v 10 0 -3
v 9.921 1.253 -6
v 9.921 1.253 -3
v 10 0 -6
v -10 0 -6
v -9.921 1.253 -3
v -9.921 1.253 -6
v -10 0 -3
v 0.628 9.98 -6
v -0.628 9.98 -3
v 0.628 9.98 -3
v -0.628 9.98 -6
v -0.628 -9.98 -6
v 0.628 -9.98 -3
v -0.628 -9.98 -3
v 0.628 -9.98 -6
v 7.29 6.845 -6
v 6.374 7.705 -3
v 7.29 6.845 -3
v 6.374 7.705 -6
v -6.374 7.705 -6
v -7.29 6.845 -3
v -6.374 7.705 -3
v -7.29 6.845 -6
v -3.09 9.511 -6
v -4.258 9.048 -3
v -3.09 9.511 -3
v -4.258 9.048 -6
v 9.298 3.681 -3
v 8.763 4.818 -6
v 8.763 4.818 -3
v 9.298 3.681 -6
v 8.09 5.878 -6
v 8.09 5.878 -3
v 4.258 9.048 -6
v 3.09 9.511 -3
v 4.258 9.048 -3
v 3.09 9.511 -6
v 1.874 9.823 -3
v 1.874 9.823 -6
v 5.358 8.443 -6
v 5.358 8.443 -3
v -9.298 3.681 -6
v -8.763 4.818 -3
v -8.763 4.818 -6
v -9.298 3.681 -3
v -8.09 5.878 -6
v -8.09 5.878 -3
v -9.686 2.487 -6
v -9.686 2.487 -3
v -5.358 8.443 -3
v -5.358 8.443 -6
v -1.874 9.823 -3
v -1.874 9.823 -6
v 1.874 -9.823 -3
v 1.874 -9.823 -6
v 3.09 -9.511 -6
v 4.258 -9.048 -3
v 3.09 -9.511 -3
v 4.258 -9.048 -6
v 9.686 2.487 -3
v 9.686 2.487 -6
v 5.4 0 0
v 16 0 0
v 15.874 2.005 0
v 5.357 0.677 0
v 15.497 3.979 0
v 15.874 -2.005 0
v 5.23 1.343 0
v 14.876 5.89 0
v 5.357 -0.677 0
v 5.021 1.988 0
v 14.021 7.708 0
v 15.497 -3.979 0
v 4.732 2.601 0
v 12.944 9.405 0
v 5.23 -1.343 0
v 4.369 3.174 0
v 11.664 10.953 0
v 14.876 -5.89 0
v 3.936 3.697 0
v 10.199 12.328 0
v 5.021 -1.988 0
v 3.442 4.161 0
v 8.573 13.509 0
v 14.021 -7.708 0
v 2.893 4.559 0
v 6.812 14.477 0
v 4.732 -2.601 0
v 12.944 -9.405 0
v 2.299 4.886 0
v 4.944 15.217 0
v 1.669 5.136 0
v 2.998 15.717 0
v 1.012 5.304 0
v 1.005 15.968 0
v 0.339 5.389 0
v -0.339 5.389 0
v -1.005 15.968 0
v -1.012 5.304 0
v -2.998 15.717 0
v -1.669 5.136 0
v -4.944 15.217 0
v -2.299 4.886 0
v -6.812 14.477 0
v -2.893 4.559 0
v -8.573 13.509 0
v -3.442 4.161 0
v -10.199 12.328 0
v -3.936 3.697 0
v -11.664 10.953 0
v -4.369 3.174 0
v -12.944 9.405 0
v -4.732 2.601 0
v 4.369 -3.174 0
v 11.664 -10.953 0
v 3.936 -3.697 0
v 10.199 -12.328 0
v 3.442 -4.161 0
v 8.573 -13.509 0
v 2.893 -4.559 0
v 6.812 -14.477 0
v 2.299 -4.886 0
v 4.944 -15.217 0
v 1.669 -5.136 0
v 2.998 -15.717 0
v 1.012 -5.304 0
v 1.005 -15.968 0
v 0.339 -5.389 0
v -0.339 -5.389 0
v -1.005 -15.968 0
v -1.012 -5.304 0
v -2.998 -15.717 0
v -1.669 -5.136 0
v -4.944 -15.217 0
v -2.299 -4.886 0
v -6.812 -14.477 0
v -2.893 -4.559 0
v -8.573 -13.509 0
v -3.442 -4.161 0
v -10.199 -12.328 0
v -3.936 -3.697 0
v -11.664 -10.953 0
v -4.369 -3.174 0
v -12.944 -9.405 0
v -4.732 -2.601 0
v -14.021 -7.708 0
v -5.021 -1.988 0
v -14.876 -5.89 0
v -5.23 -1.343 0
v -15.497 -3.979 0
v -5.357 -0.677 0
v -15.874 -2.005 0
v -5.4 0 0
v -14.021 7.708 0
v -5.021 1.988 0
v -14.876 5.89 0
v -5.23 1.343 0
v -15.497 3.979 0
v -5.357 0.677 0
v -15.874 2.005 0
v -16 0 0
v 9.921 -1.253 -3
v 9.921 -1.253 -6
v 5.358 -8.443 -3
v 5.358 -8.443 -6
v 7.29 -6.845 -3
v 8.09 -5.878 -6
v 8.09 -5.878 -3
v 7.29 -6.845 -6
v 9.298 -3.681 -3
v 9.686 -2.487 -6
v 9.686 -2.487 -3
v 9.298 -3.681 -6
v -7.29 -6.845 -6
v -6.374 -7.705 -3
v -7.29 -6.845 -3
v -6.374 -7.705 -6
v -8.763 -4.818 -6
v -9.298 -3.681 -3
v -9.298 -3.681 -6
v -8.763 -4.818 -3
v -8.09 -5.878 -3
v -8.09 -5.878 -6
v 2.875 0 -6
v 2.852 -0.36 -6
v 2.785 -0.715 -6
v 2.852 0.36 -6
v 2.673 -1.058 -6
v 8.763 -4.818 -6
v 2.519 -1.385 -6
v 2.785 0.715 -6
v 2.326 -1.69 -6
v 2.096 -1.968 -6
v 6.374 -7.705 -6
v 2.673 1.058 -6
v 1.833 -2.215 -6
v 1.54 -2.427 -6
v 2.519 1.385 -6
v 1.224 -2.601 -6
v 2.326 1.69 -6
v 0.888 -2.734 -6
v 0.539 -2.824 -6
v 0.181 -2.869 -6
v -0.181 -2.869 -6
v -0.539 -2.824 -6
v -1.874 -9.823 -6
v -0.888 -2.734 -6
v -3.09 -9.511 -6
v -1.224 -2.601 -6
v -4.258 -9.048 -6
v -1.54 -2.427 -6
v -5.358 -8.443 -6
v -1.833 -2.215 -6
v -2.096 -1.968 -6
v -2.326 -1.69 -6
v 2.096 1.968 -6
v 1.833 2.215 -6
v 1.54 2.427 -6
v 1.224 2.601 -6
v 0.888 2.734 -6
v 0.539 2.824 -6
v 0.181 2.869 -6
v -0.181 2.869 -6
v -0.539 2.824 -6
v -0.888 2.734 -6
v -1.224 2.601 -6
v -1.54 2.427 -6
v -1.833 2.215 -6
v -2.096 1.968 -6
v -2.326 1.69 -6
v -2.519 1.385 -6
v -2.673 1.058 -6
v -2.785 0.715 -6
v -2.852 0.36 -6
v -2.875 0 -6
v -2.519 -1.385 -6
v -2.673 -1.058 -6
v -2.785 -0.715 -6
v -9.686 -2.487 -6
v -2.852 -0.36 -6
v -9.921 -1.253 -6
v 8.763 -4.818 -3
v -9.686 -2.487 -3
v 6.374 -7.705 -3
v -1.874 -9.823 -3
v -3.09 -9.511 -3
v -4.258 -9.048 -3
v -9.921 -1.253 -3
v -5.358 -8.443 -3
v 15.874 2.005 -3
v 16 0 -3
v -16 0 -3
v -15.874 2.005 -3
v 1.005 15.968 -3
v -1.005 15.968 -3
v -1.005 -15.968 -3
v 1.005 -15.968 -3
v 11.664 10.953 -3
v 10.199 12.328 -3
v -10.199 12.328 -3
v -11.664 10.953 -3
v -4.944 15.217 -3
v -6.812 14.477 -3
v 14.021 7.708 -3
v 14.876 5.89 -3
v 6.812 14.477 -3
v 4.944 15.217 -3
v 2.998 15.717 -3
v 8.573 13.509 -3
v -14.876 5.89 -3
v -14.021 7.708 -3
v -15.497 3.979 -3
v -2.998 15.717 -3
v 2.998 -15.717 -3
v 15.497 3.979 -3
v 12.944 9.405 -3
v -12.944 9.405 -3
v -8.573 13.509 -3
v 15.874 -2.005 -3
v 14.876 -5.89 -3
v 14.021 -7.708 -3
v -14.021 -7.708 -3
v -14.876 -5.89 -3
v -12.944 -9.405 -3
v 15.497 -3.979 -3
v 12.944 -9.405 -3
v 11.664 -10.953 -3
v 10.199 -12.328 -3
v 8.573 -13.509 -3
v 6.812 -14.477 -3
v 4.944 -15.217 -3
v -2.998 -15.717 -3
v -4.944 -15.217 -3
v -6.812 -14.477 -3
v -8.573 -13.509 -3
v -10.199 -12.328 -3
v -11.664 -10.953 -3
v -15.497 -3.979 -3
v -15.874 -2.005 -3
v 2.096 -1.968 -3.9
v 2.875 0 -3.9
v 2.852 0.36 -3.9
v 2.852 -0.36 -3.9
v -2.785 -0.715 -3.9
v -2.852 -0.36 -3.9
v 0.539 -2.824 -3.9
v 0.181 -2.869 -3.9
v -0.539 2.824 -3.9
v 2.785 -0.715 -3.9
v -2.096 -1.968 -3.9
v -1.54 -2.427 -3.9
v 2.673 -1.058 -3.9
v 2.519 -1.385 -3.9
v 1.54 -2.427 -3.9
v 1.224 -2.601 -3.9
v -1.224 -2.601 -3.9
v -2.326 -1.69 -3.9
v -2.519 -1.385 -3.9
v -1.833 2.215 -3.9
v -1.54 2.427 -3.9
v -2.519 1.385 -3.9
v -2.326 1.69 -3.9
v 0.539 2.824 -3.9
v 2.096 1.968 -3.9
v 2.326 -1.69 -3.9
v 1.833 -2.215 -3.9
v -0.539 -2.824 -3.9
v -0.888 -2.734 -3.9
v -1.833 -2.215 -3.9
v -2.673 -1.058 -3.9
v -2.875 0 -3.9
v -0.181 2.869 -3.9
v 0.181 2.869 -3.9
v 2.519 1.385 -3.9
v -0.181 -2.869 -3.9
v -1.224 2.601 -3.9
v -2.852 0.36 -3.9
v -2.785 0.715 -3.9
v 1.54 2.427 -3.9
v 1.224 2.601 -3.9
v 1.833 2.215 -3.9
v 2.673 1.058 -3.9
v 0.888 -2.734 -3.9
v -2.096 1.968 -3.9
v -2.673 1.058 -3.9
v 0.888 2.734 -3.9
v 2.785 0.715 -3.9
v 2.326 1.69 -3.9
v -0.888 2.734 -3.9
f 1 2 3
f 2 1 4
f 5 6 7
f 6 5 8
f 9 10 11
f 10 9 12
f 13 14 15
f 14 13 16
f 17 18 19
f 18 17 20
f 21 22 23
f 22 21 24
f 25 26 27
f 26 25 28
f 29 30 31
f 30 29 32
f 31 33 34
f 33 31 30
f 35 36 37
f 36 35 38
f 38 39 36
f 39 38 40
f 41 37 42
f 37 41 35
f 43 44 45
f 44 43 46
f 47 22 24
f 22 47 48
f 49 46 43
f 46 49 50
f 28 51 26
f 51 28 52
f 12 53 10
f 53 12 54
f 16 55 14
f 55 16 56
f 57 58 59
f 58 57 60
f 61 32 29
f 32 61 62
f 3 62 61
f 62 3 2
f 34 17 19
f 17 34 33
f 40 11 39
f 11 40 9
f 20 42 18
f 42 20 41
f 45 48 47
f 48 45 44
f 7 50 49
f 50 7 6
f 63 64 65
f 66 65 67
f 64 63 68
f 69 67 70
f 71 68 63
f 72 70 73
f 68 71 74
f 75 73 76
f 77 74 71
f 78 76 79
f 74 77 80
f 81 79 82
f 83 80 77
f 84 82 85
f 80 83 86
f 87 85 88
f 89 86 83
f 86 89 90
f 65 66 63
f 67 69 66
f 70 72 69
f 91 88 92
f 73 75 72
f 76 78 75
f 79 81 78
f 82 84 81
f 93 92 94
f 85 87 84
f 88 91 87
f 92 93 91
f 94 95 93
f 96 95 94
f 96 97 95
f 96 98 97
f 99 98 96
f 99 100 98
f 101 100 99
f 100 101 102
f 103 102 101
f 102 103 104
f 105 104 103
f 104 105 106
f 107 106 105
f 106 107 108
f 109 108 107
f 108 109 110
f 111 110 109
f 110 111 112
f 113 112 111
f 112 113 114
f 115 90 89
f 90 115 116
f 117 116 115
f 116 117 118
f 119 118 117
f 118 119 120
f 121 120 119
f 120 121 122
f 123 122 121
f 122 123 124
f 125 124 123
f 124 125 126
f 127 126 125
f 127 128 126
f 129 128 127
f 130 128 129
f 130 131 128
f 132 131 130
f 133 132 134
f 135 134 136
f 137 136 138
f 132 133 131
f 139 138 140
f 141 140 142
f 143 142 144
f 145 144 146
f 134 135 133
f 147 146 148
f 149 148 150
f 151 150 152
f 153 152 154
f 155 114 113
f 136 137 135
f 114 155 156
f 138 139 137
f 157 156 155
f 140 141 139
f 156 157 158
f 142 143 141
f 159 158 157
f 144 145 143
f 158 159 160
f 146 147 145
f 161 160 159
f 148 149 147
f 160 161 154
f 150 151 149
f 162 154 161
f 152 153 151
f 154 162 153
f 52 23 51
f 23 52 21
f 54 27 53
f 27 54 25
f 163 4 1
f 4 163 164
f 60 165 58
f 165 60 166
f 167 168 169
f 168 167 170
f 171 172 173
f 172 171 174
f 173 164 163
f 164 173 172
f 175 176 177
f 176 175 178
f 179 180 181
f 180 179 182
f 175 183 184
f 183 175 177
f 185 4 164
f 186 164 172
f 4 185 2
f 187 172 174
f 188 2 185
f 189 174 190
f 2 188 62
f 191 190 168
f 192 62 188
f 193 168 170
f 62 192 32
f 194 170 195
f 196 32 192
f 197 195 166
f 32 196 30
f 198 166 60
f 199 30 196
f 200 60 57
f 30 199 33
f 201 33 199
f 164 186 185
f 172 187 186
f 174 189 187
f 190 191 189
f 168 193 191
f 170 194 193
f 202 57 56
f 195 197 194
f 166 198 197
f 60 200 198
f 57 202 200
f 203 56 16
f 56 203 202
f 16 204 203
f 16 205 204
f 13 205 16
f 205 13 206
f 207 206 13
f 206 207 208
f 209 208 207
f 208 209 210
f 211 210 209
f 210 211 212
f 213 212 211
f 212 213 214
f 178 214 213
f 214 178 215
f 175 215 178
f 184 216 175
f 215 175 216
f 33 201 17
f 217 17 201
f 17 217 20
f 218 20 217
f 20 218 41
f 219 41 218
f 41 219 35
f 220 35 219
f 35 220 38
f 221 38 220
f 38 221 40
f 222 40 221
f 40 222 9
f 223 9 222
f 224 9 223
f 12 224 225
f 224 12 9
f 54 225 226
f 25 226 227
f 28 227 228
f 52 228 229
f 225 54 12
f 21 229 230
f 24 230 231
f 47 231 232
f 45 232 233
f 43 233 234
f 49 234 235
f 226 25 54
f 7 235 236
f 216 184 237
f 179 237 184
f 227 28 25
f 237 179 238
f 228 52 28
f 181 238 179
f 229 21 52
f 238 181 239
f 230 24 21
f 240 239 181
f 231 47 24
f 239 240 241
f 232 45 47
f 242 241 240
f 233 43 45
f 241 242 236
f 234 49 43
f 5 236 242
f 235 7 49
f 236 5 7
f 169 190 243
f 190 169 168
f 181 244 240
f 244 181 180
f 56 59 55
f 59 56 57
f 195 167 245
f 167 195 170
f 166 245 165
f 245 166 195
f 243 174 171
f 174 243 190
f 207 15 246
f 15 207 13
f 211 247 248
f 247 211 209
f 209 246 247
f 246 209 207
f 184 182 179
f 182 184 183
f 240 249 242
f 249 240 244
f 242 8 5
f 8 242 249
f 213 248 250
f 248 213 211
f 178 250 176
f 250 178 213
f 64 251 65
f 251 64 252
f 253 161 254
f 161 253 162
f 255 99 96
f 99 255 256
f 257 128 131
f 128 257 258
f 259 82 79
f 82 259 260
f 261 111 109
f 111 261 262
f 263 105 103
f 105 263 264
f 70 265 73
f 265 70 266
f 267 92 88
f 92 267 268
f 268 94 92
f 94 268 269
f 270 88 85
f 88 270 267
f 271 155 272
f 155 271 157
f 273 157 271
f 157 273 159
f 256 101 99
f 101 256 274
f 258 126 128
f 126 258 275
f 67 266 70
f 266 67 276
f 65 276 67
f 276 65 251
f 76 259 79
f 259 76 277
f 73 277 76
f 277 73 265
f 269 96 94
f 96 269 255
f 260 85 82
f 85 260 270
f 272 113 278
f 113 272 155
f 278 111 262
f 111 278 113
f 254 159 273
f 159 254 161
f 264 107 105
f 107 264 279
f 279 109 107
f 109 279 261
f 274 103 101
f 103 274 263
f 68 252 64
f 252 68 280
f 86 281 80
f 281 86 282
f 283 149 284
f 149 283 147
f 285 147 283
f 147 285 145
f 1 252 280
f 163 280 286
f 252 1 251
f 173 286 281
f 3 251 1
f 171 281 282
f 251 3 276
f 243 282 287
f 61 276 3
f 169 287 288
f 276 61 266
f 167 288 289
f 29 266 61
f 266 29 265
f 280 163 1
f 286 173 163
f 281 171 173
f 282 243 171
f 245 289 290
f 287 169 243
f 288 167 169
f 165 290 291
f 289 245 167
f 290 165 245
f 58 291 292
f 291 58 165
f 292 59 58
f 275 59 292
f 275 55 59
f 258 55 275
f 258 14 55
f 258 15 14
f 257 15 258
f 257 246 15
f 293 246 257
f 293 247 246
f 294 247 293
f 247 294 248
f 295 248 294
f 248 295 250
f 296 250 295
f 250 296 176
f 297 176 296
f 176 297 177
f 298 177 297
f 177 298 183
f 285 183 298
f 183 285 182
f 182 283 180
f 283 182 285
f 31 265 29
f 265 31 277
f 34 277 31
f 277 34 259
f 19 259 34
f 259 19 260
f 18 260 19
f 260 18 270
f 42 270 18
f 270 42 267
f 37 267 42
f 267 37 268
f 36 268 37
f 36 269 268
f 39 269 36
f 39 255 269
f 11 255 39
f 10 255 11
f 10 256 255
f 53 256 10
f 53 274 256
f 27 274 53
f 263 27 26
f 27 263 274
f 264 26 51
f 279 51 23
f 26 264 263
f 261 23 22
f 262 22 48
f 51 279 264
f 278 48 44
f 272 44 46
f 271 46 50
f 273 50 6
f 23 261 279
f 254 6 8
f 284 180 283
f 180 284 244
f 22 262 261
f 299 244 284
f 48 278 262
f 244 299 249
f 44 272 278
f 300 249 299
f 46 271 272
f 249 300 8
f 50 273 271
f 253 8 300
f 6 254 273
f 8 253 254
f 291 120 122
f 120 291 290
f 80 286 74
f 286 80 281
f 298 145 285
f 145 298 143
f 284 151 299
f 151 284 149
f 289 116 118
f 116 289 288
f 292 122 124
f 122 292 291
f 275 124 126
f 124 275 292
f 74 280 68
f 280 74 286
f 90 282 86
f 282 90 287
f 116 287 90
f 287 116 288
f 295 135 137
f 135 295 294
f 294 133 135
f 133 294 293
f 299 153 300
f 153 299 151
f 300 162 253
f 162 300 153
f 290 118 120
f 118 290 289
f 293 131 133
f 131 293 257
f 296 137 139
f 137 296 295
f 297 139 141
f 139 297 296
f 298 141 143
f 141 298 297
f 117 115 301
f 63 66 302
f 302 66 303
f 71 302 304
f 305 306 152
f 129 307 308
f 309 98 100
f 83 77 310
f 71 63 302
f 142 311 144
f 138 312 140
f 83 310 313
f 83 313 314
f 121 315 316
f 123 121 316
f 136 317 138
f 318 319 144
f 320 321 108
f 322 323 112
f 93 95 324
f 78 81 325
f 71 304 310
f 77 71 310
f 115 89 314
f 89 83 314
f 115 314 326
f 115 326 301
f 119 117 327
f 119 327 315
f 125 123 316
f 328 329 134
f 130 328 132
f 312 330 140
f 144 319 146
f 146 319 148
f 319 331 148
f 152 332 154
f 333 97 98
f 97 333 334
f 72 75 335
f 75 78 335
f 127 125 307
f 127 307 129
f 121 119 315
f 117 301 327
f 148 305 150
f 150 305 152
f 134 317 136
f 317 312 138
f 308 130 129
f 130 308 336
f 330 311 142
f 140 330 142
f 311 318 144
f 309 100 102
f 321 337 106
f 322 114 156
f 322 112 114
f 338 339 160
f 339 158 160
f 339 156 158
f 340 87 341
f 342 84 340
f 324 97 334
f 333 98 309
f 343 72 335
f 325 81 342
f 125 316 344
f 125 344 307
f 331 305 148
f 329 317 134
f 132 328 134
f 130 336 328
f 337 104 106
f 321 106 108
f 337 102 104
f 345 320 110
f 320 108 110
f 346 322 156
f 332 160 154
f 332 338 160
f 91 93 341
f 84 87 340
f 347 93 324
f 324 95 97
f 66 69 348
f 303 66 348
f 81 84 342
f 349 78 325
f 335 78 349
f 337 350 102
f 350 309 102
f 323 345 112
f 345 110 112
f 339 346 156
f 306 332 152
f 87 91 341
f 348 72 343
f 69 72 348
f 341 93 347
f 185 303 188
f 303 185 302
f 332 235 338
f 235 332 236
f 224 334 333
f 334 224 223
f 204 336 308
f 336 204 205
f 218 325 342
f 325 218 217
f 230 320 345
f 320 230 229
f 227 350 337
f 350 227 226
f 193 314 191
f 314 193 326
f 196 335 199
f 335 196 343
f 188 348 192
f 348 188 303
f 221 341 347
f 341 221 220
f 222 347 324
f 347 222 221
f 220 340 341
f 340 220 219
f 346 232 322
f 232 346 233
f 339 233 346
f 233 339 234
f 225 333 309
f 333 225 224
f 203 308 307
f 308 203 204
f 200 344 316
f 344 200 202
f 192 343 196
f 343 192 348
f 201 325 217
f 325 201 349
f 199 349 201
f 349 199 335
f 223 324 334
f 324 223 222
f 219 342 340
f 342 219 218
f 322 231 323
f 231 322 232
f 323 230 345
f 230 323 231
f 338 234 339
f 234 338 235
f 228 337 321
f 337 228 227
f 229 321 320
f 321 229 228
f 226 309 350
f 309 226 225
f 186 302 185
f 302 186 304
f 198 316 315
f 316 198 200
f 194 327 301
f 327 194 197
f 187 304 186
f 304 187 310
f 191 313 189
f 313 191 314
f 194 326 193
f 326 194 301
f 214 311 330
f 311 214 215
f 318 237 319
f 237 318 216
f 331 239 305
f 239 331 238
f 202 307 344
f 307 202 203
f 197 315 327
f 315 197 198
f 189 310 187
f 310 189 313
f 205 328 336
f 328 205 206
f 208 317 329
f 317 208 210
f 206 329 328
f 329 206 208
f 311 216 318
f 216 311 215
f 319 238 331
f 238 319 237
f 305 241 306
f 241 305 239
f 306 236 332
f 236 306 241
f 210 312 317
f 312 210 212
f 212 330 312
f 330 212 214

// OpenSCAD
$fn = 50;


difference() {
	union() {
		translate(v = [0, 0, -6.0000000000]) {
			cylinder(h = 6, r = 10.0000000000);
		}
		translate(v = [0, 0, -3.0000000000]) {
			cylinder(h = 3, r = 16.0000000000);
		}
	}
	union() {
		translate(v = [0, 0, 0]) {
			rotate(a = [0, 0, 0]) {
				difference() {
					union() {
						#translate(v = [0, 0, -6.0000000000]) {
							cylinder(h = 6, r = 2.6000000000);
						}
						#translate(v = [0, 0, -3.9000000000]) {
							cylinder(h = 3.9000000000, r = 10.0000000000, r1 = 2.8750000000, r2 = 5.4000000000);
						}
						#translate(v = [0, 0, -6.0000000000]) {
							cylinder(h = 6, r = 2.8750000000);
						}
						#translate(v = [0, 0, -6.0000000000]) {
							cylinder(h = 6, r = 2.6000000000);
						}
					}
					union();
				}
			}
		}
	}
}
